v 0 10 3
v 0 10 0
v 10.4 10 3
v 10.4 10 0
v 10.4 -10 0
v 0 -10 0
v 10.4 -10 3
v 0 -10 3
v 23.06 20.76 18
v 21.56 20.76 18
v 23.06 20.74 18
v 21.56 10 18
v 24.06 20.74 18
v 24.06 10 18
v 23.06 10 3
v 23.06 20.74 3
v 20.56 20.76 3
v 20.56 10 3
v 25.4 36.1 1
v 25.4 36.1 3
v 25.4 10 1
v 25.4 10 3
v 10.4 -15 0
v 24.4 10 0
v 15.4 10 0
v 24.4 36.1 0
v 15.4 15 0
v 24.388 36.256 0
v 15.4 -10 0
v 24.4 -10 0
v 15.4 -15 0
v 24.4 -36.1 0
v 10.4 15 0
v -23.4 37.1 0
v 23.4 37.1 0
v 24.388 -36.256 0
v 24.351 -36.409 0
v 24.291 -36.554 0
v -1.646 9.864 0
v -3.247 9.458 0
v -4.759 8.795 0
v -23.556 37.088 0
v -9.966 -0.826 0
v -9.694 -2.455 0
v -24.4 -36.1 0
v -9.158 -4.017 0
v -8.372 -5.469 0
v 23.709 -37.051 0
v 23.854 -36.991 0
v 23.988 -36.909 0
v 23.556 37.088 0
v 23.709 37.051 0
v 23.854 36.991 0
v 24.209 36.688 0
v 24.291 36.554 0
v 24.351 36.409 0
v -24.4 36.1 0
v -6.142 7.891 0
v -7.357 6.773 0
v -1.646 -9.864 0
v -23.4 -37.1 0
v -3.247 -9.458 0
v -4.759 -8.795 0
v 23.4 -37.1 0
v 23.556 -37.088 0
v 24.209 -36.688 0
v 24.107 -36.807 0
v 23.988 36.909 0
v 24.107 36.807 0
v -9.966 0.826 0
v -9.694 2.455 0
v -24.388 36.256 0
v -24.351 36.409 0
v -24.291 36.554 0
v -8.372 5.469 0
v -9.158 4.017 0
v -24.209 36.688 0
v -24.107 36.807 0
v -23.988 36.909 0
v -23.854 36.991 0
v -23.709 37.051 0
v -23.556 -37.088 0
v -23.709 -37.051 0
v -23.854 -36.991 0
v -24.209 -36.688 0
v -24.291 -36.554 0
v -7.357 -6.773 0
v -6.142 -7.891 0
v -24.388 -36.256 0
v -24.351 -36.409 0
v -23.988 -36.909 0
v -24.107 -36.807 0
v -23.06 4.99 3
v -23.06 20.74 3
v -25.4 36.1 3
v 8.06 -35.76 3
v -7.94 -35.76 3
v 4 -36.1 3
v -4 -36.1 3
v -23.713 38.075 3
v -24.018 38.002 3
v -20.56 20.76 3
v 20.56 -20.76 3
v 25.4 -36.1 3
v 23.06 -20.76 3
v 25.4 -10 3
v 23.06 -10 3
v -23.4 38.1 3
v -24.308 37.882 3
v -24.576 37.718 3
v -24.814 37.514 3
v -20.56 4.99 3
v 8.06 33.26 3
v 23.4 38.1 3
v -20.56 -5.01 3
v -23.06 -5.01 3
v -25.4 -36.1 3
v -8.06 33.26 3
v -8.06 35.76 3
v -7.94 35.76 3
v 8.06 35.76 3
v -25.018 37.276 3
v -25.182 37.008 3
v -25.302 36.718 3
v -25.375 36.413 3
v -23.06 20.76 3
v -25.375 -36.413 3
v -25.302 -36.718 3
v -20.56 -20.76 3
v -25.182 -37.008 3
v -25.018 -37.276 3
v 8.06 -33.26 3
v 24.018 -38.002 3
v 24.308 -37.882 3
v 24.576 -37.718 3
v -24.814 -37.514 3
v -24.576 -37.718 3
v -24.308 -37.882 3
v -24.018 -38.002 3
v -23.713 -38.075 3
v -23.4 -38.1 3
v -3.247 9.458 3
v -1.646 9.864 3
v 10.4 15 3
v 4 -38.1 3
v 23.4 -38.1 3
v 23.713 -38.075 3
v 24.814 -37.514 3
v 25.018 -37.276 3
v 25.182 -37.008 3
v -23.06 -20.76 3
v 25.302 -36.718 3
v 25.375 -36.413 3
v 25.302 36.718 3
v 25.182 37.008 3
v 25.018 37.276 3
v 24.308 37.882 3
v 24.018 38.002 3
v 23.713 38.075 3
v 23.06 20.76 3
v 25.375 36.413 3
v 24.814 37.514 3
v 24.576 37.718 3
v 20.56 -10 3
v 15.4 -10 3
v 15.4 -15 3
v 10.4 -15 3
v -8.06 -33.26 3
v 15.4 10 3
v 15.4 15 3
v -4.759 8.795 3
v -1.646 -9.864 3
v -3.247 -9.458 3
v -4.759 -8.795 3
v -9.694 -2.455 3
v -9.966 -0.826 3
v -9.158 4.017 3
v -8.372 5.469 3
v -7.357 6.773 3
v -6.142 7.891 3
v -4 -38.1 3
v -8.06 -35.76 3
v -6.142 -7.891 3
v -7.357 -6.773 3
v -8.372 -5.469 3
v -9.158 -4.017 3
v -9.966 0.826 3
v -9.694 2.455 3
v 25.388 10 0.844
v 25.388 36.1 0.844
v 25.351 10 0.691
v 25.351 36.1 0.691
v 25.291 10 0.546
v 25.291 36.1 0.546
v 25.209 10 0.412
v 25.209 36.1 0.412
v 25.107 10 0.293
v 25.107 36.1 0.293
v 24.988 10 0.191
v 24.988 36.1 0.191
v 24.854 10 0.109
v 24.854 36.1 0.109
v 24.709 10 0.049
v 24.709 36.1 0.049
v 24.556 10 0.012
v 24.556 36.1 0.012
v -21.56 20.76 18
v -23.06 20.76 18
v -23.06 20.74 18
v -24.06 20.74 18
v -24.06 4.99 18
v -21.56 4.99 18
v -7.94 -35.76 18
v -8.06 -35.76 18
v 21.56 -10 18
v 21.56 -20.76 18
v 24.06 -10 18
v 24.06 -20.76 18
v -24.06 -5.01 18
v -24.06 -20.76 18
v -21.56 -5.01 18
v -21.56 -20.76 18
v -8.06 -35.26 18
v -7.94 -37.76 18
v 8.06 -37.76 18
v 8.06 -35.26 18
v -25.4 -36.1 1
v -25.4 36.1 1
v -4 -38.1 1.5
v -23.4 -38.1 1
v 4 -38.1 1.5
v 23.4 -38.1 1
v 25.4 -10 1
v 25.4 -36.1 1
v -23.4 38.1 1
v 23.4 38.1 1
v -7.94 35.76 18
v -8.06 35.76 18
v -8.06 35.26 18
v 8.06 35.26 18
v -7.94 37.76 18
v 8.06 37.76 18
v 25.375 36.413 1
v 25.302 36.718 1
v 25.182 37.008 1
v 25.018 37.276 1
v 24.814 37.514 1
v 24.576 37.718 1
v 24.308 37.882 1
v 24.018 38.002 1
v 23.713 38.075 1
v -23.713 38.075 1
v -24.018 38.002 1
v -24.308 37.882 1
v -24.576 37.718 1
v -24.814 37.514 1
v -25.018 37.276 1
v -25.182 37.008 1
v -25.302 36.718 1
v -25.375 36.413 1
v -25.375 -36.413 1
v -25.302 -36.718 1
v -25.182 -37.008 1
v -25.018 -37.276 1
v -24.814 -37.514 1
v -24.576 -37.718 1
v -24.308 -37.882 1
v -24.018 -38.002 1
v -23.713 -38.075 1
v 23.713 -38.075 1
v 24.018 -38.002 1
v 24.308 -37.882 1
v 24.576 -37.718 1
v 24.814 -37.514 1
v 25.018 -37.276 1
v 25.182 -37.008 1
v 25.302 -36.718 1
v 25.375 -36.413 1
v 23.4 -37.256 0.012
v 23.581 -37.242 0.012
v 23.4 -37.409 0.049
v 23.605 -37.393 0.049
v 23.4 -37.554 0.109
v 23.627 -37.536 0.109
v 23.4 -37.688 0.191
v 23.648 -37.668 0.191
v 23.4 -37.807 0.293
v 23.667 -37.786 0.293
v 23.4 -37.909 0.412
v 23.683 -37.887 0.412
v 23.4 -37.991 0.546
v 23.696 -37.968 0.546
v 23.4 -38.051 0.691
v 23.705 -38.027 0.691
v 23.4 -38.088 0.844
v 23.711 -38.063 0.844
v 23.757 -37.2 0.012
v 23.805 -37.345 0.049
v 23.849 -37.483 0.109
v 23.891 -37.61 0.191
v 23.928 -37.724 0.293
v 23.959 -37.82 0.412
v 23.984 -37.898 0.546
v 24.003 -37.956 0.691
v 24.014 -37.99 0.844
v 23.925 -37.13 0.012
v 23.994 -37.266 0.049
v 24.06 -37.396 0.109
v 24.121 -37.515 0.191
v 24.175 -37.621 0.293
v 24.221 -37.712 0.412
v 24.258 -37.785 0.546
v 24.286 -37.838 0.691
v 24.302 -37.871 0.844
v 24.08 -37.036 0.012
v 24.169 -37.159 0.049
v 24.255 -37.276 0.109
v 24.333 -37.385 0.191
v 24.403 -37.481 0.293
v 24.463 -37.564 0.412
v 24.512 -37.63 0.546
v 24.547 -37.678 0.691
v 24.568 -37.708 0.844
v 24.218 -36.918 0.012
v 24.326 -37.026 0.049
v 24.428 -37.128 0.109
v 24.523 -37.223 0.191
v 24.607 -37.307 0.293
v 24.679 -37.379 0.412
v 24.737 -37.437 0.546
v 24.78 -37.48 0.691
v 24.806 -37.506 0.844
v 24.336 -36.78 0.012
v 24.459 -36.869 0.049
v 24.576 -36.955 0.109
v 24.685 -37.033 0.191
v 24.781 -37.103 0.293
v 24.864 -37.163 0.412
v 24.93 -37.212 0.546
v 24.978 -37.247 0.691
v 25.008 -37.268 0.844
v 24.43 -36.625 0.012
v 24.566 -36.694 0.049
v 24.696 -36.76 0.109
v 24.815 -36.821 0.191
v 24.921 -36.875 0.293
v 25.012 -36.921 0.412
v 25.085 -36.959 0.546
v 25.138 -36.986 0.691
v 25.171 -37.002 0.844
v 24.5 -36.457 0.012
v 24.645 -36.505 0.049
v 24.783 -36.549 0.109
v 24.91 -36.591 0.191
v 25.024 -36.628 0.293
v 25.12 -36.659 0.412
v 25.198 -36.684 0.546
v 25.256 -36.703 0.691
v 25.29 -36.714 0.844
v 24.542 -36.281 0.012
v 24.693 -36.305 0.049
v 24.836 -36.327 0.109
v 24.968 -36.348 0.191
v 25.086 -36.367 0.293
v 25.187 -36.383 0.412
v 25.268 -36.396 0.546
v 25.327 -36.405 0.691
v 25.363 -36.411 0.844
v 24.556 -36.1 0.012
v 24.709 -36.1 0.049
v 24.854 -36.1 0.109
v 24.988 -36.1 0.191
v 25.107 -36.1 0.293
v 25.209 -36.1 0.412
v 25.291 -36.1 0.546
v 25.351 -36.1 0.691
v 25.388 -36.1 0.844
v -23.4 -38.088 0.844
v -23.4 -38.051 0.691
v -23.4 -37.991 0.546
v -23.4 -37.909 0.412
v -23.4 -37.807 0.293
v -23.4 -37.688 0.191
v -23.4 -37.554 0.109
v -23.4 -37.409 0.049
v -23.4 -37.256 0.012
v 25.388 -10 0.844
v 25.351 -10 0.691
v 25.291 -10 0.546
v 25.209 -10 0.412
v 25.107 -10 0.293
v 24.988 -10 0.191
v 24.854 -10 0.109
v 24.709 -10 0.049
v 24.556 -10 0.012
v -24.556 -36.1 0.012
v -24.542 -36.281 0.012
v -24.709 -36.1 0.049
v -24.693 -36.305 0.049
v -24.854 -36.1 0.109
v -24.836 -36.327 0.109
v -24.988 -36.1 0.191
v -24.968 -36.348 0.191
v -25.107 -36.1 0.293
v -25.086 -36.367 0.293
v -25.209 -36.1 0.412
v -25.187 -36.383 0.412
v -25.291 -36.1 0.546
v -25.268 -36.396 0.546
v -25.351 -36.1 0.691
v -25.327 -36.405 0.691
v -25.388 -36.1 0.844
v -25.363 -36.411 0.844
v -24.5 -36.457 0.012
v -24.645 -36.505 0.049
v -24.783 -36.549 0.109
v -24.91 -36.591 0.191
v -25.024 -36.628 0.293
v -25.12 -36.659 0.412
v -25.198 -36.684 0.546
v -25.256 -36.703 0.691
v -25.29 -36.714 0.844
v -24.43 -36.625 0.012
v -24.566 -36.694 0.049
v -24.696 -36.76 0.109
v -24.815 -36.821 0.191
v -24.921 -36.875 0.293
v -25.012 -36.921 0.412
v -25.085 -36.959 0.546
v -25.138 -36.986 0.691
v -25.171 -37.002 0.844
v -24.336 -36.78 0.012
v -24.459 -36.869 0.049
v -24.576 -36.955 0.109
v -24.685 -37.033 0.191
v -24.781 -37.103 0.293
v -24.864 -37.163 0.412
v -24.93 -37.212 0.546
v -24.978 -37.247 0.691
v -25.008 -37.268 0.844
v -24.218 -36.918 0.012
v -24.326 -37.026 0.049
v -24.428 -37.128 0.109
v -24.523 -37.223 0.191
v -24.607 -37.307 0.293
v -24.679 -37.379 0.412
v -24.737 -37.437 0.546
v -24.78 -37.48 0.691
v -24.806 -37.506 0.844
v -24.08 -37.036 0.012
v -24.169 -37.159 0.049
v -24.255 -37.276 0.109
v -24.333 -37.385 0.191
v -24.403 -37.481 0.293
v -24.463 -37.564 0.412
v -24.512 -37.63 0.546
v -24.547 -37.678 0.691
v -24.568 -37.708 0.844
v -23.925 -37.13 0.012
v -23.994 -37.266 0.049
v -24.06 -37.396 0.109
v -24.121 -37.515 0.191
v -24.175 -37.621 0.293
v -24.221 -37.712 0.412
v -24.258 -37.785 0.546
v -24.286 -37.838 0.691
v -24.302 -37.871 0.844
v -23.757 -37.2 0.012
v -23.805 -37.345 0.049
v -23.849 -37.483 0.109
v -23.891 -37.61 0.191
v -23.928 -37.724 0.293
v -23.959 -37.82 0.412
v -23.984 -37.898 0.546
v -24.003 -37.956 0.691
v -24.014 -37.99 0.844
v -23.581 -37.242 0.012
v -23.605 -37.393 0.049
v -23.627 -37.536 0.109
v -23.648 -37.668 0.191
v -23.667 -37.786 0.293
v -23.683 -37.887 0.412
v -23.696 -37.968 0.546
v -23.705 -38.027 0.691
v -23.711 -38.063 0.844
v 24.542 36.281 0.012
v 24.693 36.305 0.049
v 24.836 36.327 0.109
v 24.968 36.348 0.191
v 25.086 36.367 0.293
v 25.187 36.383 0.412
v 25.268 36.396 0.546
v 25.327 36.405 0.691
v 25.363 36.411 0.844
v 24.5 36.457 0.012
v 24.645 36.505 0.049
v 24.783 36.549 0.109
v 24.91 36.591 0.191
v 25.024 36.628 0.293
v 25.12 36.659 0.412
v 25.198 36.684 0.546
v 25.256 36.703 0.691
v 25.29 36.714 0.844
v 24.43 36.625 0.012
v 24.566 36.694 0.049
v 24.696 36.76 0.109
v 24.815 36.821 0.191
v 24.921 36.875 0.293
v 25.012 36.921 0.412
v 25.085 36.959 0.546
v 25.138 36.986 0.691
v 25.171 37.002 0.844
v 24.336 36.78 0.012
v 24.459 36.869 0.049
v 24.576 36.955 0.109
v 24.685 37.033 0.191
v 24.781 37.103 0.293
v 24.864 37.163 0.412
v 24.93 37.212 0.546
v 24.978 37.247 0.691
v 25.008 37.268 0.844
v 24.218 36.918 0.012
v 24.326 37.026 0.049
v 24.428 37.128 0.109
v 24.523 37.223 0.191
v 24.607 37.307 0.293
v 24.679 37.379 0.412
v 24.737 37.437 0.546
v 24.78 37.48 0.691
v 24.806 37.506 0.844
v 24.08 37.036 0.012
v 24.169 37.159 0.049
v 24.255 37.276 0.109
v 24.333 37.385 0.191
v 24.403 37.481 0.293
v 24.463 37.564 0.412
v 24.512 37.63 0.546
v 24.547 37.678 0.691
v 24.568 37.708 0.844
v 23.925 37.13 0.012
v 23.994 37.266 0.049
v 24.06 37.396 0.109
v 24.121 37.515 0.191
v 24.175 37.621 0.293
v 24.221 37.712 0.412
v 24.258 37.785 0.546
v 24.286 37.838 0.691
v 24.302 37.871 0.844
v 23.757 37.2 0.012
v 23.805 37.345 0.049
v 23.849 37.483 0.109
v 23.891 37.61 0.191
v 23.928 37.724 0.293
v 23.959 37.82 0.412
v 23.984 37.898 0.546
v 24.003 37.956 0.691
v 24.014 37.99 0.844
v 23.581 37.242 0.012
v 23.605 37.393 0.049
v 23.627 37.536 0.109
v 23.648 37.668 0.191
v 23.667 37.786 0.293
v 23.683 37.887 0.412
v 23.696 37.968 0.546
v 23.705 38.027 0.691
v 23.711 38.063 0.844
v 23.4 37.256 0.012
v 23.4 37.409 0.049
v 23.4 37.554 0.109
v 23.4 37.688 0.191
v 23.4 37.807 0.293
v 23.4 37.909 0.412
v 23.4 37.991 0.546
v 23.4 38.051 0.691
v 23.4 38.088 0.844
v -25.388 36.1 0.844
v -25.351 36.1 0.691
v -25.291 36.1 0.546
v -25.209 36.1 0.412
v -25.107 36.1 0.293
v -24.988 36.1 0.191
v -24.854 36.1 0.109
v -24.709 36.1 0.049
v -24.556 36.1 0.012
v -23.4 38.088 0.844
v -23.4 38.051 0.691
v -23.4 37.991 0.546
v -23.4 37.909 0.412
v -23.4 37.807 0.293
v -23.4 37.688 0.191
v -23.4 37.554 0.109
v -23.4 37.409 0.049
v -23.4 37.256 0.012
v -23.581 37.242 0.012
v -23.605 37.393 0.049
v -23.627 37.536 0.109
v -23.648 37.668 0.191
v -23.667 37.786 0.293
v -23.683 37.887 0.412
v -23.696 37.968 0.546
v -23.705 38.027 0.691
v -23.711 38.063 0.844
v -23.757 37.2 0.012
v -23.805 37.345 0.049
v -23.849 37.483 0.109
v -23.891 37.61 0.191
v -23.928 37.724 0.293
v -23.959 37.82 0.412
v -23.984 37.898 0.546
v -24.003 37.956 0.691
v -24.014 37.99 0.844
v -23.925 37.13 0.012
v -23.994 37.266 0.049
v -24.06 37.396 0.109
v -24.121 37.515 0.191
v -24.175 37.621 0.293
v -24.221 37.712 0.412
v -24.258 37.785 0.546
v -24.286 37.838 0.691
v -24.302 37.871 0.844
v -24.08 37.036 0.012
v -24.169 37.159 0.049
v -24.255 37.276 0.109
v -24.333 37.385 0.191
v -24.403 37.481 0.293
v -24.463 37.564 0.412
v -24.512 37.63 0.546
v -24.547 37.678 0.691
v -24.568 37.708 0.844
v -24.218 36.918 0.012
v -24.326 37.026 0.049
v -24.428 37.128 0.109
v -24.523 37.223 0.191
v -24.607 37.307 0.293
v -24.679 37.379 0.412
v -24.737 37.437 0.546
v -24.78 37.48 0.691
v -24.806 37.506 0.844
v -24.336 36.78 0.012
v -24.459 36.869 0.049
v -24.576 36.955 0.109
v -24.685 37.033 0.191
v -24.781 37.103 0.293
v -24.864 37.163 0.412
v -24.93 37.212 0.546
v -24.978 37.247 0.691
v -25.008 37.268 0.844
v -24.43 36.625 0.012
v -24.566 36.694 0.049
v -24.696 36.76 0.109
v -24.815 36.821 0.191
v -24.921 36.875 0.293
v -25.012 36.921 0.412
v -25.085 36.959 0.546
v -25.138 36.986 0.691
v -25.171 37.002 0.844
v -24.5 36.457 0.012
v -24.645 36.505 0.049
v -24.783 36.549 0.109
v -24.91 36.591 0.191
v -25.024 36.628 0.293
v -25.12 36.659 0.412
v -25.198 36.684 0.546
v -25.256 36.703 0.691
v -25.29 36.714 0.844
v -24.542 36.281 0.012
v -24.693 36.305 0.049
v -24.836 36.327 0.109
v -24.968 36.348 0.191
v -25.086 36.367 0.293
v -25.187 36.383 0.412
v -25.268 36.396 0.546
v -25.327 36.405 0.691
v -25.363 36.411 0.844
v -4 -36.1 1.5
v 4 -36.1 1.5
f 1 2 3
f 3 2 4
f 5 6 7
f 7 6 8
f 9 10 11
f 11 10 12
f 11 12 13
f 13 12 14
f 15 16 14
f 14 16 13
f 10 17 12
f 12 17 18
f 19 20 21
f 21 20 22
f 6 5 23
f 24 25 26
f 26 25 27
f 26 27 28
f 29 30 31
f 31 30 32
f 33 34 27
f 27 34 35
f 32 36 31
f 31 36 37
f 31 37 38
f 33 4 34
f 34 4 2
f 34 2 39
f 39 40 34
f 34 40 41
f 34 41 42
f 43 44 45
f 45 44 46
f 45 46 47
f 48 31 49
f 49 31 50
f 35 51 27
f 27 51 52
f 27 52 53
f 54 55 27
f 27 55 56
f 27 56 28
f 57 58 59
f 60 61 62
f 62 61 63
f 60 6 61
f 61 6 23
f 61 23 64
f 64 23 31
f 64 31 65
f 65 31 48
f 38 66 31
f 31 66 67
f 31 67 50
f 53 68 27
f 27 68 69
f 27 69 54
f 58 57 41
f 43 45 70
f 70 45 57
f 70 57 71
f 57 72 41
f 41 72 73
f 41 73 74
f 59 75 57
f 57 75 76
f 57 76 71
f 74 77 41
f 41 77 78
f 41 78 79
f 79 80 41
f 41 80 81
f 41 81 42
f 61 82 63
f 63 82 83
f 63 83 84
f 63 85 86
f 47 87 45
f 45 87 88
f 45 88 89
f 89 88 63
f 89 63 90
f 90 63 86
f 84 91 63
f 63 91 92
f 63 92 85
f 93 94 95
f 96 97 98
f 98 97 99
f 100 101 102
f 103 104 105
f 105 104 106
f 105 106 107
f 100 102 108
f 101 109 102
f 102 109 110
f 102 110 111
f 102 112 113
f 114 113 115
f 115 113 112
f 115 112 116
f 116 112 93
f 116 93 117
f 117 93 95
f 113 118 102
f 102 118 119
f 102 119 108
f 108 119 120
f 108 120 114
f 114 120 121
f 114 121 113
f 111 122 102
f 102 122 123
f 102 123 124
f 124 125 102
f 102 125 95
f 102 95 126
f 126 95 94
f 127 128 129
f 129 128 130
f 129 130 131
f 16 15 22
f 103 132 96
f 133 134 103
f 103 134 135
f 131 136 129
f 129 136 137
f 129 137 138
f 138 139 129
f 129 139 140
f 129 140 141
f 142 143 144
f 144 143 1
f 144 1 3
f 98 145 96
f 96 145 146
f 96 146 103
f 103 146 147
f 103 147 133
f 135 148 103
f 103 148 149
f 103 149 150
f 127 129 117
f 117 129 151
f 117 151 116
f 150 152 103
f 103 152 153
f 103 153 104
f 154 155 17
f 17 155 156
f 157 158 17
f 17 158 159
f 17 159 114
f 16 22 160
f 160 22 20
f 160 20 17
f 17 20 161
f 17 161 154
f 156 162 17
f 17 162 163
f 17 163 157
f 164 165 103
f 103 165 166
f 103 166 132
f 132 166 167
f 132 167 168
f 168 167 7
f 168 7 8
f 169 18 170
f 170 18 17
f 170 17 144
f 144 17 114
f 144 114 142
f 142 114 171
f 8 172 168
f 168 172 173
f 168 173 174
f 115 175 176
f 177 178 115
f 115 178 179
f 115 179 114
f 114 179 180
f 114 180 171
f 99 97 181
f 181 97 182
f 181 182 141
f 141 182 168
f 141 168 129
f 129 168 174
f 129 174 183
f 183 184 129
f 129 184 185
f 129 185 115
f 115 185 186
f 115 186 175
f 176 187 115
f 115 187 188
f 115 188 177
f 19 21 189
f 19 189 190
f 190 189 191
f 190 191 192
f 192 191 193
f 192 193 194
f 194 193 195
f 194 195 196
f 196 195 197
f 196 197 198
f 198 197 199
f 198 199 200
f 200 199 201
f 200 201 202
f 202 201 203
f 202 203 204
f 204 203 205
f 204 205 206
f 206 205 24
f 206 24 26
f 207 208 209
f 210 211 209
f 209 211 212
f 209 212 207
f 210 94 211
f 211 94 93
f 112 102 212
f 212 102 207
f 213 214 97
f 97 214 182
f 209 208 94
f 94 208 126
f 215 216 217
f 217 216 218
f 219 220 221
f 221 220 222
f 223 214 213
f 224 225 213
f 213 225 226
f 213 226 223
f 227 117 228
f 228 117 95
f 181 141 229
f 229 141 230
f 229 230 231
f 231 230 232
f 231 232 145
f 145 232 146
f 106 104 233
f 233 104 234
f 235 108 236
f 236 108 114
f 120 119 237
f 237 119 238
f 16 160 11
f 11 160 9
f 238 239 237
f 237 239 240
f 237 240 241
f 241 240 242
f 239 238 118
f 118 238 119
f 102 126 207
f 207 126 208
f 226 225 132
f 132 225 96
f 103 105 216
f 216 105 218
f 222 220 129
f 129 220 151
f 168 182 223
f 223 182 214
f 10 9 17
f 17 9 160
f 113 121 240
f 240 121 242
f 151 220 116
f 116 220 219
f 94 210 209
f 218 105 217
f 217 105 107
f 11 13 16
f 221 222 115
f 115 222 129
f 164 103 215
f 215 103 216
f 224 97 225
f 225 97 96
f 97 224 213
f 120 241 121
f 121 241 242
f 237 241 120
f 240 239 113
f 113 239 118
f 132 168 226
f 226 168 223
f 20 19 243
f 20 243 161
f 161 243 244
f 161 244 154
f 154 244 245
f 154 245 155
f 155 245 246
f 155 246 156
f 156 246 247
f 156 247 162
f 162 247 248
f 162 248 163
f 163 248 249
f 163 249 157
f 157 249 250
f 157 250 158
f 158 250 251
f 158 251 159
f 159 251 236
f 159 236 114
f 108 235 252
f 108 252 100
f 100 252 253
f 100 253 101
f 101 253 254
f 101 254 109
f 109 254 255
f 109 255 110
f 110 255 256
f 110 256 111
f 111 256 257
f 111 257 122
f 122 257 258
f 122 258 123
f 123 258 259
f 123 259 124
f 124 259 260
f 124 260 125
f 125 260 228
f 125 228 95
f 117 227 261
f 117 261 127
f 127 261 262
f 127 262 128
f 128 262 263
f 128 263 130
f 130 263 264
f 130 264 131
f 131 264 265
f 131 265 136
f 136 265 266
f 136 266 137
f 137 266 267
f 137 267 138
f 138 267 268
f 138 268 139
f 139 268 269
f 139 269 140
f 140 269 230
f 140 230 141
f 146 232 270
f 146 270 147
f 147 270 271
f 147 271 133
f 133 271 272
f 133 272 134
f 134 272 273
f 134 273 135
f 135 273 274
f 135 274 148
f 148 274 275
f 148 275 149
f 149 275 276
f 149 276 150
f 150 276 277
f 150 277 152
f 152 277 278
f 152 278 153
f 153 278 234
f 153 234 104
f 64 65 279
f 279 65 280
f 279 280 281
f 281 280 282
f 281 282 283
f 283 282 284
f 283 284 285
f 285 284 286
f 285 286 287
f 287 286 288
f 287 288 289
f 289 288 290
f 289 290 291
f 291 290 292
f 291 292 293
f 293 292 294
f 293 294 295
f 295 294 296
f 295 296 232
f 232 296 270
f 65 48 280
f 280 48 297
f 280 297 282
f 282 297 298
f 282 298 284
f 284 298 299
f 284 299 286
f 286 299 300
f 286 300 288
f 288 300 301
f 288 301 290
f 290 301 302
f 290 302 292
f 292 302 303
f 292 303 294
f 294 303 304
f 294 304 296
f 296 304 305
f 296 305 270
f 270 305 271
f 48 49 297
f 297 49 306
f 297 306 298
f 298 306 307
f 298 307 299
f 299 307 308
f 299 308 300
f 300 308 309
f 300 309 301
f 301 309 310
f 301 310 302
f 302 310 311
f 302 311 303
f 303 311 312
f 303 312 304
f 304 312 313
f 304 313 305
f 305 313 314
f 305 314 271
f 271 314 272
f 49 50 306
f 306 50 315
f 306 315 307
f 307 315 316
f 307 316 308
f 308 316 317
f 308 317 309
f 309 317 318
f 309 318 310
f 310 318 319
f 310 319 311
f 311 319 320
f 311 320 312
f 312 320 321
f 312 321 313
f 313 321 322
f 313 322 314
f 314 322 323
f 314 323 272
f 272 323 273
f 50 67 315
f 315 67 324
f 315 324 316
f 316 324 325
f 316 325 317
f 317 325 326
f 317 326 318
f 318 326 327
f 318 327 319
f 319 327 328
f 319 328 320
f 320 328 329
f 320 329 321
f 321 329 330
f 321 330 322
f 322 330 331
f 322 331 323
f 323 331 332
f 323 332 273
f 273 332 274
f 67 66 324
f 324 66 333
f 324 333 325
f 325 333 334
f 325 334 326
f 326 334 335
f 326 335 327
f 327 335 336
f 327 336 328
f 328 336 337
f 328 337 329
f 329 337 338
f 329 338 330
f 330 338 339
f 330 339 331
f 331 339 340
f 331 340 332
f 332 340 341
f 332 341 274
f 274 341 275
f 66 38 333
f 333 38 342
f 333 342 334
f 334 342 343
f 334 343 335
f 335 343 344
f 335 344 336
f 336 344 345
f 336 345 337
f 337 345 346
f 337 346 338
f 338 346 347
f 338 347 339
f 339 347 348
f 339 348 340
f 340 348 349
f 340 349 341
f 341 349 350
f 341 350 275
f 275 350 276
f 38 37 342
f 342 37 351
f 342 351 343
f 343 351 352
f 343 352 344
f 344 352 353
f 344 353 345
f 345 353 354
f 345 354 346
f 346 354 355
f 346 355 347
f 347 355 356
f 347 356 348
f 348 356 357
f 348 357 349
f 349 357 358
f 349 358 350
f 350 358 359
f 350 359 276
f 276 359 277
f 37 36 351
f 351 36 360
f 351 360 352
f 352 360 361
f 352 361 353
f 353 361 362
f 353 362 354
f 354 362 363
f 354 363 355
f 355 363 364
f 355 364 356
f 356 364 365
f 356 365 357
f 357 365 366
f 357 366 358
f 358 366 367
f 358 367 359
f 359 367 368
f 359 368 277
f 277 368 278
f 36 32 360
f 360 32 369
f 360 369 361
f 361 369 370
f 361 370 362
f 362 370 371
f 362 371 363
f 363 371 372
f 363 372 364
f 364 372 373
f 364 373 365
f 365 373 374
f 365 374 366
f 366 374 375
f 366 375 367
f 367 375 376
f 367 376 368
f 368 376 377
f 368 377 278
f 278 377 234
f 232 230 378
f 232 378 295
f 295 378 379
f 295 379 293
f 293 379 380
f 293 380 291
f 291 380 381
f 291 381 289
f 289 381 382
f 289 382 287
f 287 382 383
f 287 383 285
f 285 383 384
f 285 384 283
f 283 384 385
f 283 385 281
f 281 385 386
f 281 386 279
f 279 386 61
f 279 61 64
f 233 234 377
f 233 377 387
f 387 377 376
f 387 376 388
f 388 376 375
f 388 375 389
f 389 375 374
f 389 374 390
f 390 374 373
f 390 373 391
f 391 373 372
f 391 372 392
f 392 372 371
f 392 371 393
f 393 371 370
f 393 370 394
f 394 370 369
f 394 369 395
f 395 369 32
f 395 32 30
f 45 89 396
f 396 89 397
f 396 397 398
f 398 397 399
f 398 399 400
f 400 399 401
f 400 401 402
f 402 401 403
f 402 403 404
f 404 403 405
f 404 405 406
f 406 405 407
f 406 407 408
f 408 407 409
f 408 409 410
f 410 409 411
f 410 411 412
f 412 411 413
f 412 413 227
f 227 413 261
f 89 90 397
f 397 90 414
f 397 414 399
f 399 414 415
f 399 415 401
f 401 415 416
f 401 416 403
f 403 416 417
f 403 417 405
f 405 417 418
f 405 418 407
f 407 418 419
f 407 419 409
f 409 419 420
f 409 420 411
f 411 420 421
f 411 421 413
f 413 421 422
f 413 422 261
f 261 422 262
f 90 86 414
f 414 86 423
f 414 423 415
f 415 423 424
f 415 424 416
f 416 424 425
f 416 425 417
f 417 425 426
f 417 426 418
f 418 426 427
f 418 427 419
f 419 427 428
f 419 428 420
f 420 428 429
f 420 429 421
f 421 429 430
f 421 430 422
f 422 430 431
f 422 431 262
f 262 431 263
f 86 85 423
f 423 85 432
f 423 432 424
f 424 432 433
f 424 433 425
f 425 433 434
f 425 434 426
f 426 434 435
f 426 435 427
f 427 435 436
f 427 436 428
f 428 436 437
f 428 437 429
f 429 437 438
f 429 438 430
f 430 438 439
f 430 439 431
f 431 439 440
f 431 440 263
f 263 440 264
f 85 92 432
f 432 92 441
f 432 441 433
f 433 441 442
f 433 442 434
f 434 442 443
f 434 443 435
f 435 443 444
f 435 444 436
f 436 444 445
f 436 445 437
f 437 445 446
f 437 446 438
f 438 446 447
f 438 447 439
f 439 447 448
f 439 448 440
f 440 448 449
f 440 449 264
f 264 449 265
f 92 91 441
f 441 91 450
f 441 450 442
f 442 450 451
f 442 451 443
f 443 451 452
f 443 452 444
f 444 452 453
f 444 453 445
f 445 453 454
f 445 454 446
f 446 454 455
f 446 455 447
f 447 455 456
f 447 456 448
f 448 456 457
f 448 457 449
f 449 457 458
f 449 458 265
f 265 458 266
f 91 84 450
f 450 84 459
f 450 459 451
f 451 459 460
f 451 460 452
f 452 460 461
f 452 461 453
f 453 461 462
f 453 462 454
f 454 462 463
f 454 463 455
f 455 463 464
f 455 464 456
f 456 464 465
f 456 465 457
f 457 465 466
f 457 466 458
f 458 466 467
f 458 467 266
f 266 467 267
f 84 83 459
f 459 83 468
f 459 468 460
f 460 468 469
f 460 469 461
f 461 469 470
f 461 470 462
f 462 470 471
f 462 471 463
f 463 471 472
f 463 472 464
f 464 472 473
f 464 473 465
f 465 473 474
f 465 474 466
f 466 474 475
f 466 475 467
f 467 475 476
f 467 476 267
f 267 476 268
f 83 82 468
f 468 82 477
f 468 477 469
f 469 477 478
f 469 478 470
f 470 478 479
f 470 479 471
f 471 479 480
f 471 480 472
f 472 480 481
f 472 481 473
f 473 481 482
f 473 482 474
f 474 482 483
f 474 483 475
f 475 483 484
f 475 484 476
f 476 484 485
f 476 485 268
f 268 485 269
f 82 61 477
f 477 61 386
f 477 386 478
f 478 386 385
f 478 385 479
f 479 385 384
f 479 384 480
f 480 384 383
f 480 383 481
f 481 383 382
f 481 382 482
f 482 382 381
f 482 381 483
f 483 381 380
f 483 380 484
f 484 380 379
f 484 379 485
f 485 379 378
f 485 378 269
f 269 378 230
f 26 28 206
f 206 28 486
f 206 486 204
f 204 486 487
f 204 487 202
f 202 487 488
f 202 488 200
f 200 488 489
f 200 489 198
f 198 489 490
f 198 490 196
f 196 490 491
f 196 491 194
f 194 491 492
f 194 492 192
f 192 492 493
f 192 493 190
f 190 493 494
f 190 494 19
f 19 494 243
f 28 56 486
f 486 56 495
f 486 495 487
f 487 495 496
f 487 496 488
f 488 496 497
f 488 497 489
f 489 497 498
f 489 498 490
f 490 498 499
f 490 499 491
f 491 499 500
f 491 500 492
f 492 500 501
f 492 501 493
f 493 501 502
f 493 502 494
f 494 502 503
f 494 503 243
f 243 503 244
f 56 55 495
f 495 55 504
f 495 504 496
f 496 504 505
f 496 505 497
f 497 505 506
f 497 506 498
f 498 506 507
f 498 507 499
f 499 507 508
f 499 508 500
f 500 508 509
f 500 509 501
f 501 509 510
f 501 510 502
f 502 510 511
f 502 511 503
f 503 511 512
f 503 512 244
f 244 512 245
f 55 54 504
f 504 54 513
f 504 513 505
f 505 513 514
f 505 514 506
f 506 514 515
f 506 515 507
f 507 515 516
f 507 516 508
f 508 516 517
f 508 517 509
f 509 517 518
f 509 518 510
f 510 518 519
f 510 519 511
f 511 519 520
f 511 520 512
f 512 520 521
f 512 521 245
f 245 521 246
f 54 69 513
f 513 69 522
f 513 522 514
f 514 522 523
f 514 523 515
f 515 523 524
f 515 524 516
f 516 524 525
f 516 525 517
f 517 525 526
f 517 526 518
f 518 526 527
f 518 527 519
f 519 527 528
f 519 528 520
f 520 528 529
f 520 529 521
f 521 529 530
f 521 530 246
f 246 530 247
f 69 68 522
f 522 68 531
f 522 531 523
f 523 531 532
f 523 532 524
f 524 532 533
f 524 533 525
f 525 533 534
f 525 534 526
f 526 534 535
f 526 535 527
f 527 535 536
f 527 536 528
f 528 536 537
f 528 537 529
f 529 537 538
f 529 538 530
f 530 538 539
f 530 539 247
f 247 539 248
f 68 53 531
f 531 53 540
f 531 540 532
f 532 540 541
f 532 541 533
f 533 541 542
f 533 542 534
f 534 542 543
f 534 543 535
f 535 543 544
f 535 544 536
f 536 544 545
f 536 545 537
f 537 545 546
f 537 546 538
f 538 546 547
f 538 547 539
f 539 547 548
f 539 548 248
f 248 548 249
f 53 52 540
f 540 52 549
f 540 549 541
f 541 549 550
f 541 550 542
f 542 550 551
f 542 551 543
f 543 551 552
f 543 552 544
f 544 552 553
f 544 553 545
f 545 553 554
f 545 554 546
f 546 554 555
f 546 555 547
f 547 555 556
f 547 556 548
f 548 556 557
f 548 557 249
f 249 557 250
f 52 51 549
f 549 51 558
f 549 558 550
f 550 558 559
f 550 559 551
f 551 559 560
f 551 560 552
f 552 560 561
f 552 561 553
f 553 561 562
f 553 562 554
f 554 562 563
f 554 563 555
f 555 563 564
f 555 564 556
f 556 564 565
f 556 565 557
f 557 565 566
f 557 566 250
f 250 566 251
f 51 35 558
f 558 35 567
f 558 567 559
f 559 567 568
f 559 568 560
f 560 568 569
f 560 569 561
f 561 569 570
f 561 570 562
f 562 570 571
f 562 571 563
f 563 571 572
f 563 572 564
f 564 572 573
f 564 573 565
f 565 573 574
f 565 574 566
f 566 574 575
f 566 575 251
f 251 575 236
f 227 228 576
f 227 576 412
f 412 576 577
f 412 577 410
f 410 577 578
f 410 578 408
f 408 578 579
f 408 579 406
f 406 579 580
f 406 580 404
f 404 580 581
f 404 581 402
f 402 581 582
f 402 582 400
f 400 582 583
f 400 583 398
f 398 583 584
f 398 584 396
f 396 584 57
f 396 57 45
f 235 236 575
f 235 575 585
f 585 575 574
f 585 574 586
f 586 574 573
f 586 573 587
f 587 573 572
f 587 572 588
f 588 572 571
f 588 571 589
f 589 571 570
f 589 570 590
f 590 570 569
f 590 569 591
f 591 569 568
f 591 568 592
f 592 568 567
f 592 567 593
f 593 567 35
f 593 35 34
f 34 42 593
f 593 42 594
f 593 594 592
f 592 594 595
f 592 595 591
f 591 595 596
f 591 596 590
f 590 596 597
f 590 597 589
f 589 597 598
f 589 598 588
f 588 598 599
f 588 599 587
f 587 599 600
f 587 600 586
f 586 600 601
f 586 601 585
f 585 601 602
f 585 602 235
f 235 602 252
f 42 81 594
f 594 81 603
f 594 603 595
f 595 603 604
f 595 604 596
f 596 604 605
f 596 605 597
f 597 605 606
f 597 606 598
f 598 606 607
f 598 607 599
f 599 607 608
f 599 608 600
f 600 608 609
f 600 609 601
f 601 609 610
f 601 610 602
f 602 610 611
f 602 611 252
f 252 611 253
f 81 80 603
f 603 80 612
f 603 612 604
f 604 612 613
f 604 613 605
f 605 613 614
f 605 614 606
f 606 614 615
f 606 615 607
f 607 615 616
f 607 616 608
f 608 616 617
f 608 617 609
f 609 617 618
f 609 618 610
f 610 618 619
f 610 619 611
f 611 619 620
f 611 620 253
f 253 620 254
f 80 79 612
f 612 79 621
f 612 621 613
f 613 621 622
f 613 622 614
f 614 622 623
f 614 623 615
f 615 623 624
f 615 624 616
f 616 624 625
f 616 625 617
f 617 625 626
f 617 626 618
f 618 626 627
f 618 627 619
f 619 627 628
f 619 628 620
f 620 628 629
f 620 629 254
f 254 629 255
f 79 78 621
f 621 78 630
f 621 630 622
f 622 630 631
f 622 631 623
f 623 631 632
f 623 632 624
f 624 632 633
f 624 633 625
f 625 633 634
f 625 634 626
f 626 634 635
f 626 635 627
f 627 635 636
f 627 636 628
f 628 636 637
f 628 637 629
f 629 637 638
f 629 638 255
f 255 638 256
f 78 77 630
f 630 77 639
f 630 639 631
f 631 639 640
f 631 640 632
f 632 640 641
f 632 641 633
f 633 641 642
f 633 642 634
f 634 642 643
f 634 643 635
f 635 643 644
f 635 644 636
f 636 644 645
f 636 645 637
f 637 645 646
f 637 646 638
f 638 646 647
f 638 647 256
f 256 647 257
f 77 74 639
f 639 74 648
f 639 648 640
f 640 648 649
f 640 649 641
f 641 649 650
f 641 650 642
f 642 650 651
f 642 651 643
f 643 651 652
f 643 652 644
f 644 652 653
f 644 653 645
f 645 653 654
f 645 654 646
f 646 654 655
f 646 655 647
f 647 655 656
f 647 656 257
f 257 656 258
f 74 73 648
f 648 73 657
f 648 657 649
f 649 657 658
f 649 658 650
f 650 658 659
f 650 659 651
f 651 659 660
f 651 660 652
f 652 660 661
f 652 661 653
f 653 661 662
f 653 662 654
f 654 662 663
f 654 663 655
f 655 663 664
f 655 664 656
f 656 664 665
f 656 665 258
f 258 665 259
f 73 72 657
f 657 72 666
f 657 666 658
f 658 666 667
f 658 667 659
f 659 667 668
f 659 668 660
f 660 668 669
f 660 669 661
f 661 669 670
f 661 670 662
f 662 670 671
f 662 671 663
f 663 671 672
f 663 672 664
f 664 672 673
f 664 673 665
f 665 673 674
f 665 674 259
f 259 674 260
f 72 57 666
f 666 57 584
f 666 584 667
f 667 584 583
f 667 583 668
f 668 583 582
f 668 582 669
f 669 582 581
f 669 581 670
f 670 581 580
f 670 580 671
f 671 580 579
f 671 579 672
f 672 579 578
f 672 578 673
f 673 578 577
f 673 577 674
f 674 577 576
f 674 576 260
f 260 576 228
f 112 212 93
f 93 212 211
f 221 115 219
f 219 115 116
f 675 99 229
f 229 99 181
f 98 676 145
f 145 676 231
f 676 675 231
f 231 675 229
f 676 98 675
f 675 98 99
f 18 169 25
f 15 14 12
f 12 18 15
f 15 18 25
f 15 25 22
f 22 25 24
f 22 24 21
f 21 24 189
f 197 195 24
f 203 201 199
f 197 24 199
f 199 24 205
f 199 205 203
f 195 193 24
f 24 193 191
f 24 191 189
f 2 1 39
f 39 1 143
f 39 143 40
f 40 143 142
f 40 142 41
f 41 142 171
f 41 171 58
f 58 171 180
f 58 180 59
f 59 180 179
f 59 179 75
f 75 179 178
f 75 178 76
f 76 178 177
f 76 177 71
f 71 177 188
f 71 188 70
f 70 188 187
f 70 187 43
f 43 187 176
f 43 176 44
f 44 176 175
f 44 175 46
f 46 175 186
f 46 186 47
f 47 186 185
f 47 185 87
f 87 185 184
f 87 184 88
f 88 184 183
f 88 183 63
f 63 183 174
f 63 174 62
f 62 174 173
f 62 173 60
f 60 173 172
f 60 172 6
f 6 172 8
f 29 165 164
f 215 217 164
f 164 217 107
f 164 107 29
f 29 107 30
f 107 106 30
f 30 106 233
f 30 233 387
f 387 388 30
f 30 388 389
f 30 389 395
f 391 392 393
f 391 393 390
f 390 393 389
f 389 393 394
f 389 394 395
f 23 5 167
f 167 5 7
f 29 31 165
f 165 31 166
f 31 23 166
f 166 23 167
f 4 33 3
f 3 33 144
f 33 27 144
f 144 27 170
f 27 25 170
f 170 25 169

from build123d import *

# Parameters (mm, degrees)
CROQUIS1_W                  = 50.8
CROQUIS1_H                  = 76.2
SALIENTE_EXTRUIR1_DEPTH     = 18
CROQUIS2_W                  = 50.8
CROQUIS2_H                  = 76.2
CROQUIS2_W_2                = 46.12
CROQUIS2_H_2                = 71.52
CROQUIS2_W_3                = 38.8
CROQUIS2_H_3                = 64.2
CORTAR_EXTRUIR1_DEPTH       = 15
CORTAR_EXTRUIR8_DEPTH       = 15
SALIENTE_EXTRUIR3_DEPTH     = 41.5
CORTAR_EXTRUIR9_DEPTH       = 51.5
CORTAR_EXTRUIR10_DEPTH      = 51.5
SALIENTE_EXTRUIR4_DEPTH     = 16
CORTAR_EXTRUIR11_DEPTH      = 16.5
REDONDEO3_R                 = 2
REDONDEO4_R                 = 1
CROQUIS15_W                 = 48.12
CROQUIS15_H                 = 10
CORTAR_EXTRUIR12_DEPTH      = 15
CROQUIS16_W                 = 8
CROQUIS16_H                 = 1.5
CORTAR_EXTRUIR13_DEPTH      = 2
CORTAR_EXTRUIR16_DEPTH      = 49.184748624
CORTAR_EXTRUIR16_DEPTH_BACK = 49.184748624
CROQUIS18_R                 = 10
CROQUIS18_W                 = 2.5
CROQUIS18_H                 = 4.99
CROQUIS18_H_2               = 5.01
CROQUIS19_W                 = 5
CROQUIS19_H                 = 5
CORTAR_EXTRUIR17_DEPTH      = 49.184748624


with BuildPart() as part:
    # Croquis1 → Saliente-Extruir1 (new body)
    with BuildSketch(Plane.XY):
        Rectangle(CROQUIS1_W, CROQUIS1_H)
    extrude(amount=SALIENTE_EXTRUIR1_DEPTH)

    # Croquis2 → Cortar-Extruir1 (cut)
    # profile 1 of 2: a face of its own
    with BuildSketch(Plane.XY.offset(18)):
        Rectangle(CROQUIS2_W, CROQUIS2_H)
        Rectangle(CROQUIS2_W_2, CROQUIS2_H_2, mode=Mode.SUBTRACT)
    # profile 2 of 2: a face of its own
    with BuildSketch(Plane.XY.offset(18)):
        Rectangle(CROQUIS2_W_3, CROQUIS2_H_3)
    extrude(amount=-CORTAR_EXTRUIR1_DEPTH, mode=Mode.SUBTRACT)

    # Croquis6 → Cortar-Extruir8 (cut)
    with BuildSketch(Plane.XY.offset(18)):
        Polygon((-23.06, 35.76), (-8.06, 35.76), (-8.06, 32.1), (-19.4, 32.1), (-19.4, 20.76), (-23.06, 20.76), align=None)
        Polygon((23.06, 35.76), (8.06, 35.76), (8.06, 32.1), (19.4, 32.1), (19.4, 20.76), (23.06, 20.76), align=None)
        Polygon((-23.06, -35.76), (-23.06, -20.76), (-19.4, -20.76), (-19.4, -32.1), (-8.06, -32.1), (-8.06, -35.76), align=None)
        Polygon((23.06, -35.76), (8.06, -35.76), (8.06, -32.1), (19.4, -32.1), (19.4, -20.76), (23.06, -20.76), align=None)
    extrude(amount=-CORTAR_EXTRUIR8_DEPTH, mode=Mode.SUBTRACT)

    # Croquis10 → Saliente-Extruir3 (add)
    with BuildSketch(Plane(origin=(0, -20.76, 0), x_dir=(-1, 0, 0), z_dir=(0, -1, 0))):
        Polygon((23.06, -18), (24.06, -18), (23.06, -3), align=None)
        Polygon((-23.06, -18), (-24.06, -18), (-23.06, -3), align=None)
    extrude(amount=-SALIENTE_EXTRUIR3_DEPTH)

    # Croquis11 → Cortar-Extruir9 (cut)
    with BuildSketch(Plane.XZ.offset(20.76)):
        Polygon((-19.4, 18), (-21.56, 18), (-20.56, 3), (-19.4, 3), align=None)
    extrude(amount=-CORTAR_EXTRUIR9_DEPTH, mode=Mode.SUBTRACT)

    # Croquis12 → Cortar-Extruir10 (cut)
    with BuildSketch(Plane.XZ.offset(20.76)):
        Polygon((19.4, 18), (19.4, 3), (20.56, 3), (21.56, 18), align=None)
    extrude(amount=-CORTAR_EXTRUIR10_DEPTH, mode=Mode.SUBTRACT)

    # Croquis13 → Saliente-Extruir4 (add)
    with BuildSketch(Plane(origin=(8.06, 0, 0), x_dir=(0, 0, -1), z_dir=(1, 0, 0))):
        Polygon((-18, -35.76), (-18, -37.76), (-3, -35.76), align=None)
        Polygon((-18, 35.76), (-18, 37.76), (-3, 35.76), align=None)
    extrude(amount=-SALIENTE_EXTRUIR4_DEPTH)

    # Croquis14 → Cortar-Extruir11 (cut)
    with BuildSketch(Plane(origin=(8.06, 0, 0), x_dir=(0, 0, -1), z_dir=(1, 0, 0))):
        Polygon((-3, -32.1), (-18, -32.1), (-18, -35.26), (-3, -33.26), align=None)
        Polygon((-18, 32.1), (-18, 35.26), (-3, 33.26), (-3, 32.1), align=None)
    extrude(amount=-CORTAR_EXTRUIR11_DEPTH, mode=Mode.SUBTRACT)

    # Redondeo3
    redondeo3_edges = [part.edges().sort_by_distance(p)[0] for p in [
        (-25.4, 38.1, 1.5),
        (25.4, 38.1, 1.5),
        (25.4, -38.1, 1.5),
        (-25.4, -38.1, 1.5),
    ]]
    fillet(redondeo3_edges, radius=REDONDEO3_R)

    # Redondeo4
    redondeo4_edges = [part.edges().sort_by_distance(p)[0] for p in [
        (0, 38.1, 0),
        (-25.4, 0, 0),
        (25.4, 0, 0),
        (0, -38.1, 0),
        (24.814213562, -37.514213562, 0),
        (-24.814213562, -37.514213562, 0),
        (-24.814213562, 37.514213562, 0),
        (24.814213562, 37.514213562, 0),
    ]]
    fillet(redondeo4_edges, radius=REDONDEO4_R)

    # Croquis15 → Cortar-Extruir12 (cut)
    with BuildSketch(Plane.XY.offset(18)):
        with Locations((0, -0.01)):
            Rectangle(CROQUIS15_W, CROQUIS15_H)
    extrude(amount=-CORTAR_EXTRUIR12_DEPTH, mode=Mode.SUBTRACT)

    # Croquis16 → Cortar-Extruir13 (cut)
    with BuildSketch(Plane.XZ.offset(38.1)):
        with Locations((0, 2.25)):
            Rectangle(CROQUIS16_W, CROQUIS16_H)
    extrude(amount=-CORTAR_EXTRUIR13_DEPTH, mode=Mode.SUBTRACT)

    # Croquis18 → Cortar-Extruir16 (cut, two sides: drawn at the far end of the back side and taken through both)
    with BuildSketch(Plane.XY.offset(3).offset(-CORTAR_EXTRUIR16_DEPTH_BACK)):
        Circle(CROQUIS18_R)
        with Locations((21.81, -7.505)):
            Rectangle(CROQUIS18_W, CROQUIS18_H)
        with Locations((21.81, 7.495)):
            Rectangle(CROQUIS18_W, CROQUIS18_H_2)
        with BuildLine():
            Line((20.56, 10), (0, 10))
            ThreePointArc((0, 10), (7.071067812, 7.071067812), (10, 0))
            ThreePointArc((10, 0), (7.071067812, -7.071067812), (0, -10))
            Line((0, -10), (20.56, -10))
            Line((20.56, -10), (20.56, -5.01))
            Line((20.56, -5.01), (23.06, -5.01))
            Line((23.06, -5.01), (23.06, -10))
            Line((23.06, -10), (25.4, -10))
            Line((25.4, -10), (25.4, 10))
            Line((25.4, 10), (23.06, 10))
            Line((23.06, 10), (23.06, 4.99))
            Line((23.06, 4.99), (20.56, 4.99))
            Line((20.56, 4.99), (20.56, 10))
        make_face()
    extrude(amount=CORTAR_EXTRUIR16_DEPTH + CORTAR_EXTRUIR16_DEPTH_BACK, mode=Mode.SUBTRACT)

    # Croquis19 → Cortar-Extruir17 (cut, through all)
    with BuildSketch(Plane.XY.offset(3)):
        with Locations((12.9, 12.5)):
            Rectangle(CROQUIS19_W, CROQUIS19_H)
        with Locations((12.9, -12.5)):
            Rectangle(CROQUIS19_W, CROQUIS19_H)
    extrude(amount=-CORTAR_EXTRUIR17_DEPTH, mode=Mode.SUBTRACT)


solid = part.part
